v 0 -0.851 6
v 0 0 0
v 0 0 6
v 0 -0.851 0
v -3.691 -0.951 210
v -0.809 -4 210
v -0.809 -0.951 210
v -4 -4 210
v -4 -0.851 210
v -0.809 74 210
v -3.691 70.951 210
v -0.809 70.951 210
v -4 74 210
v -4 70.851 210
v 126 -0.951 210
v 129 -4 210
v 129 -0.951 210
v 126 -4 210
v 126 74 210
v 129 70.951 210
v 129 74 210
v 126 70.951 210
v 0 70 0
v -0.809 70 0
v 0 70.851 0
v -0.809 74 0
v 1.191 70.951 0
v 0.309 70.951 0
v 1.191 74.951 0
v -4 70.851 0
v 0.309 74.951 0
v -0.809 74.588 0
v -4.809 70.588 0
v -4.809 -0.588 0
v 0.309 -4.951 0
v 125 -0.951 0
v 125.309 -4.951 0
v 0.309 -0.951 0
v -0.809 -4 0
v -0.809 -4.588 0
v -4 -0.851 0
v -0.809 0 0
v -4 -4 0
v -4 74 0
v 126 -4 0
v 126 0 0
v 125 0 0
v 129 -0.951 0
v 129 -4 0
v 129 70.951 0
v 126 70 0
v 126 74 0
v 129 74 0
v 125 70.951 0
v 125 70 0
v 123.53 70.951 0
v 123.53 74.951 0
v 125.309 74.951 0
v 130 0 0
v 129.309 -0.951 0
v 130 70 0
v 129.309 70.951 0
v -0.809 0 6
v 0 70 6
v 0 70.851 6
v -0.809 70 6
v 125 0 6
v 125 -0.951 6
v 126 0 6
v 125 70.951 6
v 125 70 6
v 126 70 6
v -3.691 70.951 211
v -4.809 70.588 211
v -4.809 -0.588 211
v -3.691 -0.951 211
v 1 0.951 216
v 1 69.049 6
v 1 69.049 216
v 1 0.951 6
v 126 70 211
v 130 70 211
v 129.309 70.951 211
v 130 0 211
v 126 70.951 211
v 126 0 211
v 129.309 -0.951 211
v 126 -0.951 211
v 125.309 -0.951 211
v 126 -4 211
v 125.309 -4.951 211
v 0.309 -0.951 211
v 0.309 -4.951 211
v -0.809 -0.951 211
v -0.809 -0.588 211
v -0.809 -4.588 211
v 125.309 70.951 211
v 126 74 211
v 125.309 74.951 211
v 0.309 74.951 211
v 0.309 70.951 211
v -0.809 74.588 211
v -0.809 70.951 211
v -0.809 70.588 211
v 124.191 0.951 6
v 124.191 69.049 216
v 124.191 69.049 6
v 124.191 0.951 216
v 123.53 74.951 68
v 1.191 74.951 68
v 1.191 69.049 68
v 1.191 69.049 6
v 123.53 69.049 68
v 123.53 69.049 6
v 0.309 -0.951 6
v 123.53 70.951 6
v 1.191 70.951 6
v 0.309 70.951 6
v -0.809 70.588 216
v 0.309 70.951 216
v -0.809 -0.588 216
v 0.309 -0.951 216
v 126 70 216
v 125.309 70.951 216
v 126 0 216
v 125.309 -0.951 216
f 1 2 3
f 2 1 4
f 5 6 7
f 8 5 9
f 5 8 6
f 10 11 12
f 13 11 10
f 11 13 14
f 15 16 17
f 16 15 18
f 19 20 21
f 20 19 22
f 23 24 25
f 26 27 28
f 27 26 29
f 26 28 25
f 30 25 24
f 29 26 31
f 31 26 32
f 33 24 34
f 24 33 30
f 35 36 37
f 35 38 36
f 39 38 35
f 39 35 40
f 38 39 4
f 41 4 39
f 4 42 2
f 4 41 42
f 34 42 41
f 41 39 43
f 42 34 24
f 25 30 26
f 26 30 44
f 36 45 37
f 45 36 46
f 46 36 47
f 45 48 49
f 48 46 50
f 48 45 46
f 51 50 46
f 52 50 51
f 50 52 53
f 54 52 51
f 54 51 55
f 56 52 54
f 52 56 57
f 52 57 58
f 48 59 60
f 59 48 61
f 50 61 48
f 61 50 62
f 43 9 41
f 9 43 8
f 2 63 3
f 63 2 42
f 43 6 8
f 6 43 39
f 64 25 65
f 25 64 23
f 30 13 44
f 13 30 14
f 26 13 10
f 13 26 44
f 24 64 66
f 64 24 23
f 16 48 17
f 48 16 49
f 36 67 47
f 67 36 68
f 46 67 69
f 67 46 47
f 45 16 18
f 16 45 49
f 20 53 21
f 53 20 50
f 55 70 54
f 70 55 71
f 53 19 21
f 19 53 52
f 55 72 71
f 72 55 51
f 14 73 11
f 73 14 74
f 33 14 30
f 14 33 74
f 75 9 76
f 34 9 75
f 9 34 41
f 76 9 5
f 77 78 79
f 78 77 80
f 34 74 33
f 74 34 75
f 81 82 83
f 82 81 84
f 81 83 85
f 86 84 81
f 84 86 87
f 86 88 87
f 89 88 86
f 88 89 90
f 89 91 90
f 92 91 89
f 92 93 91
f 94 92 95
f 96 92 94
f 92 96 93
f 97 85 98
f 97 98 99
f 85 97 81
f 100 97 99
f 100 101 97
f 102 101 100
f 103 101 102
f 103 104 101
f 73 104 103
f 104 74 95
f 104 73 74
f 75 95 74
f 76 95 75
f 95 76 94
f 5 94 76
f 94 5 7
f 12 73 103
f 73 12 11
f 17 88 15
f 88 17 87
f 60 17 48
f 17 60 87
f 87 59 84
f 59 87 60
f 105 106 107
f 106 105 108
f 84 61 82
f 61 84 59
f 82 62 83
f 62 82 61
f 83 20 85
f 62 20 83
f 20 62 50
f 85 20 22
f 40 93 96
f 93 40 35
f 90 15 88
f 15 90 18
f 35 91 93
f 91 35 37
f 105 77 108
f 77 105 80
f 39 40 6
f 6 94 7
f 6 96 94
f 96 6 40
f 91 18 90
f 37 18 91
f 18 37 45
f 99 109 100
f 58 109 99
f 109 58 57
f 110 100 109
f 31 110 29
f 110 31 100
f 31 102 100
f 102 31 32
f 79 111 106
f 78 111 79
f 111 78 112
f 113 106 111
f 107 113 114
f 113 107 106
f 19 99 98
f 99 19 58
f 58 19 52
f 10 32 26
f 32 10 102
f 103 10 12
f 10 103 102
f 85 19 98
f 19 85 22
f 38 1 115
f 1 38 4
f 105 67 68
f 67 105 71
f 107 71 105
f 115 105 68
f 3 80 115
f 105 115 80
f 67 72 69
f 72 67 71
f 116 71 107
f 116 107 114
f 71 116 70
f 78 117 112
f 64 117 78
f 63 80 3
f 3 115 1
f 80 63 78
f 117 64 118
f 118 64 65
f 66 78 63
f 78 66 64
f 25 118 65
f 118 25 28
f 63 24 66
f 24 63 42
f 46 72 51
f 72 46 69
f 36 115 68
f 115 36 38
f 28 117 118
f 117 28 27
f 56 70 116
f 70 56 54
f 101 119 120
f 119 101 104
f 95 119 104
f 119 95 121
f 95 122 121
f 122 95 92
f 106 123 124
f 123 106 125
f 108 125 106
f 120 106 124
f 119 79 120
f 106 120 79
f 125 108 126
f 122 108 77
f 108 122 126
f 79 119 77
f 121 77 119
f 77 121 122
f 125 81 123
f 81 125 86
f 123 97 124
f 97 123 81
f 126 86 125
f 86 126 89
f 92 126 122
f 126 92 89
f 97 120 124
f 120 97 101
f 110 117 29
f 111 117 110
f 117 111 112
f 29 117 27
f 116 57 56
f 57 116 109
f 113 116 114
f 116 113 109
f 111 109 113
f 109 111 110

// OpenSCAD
// file: can.scad
//Can dimensions
radius = 66.14/2;
top_radius = 53.67/2;
top_rise = 14.57;
bottom_radius = 50/2;
bottom_rise = 7.4;
height = 122.54;

module can(height, radius, top_rise, top_radius, bottom_rise, bottom_radius){
    //Getting measurements correct
    adjusted_height = height - top_rise - bottom_rise;
    adjusted_top_height = adjusted_height + bottom_rise;
    
    //Making the can
    //Top
    translate([0, 0, adjusted_top_height]){
        cylinder(bottom_rise, radius, top_radius);
    }
    //Main body
    translate([0, 0, bottom_rise]){
	    cylinder(adjusted_height, radius, radius);
    }
    //Bottom of can
    cylinder(bottom_rise, bottom_radius, radius);
}
can(height, radius, top_rise, top_radius, bottom_rise, bottom_radius);
// main file
use <can.scad>
use <dispenser_hopper.scad>
//Can settings
can_radius = 66.2/2;
can_top_radius = 53.67/2;
can_top_rise = 14.57;
can_bottom_radius = 50/2;
can_bottom_rise = 7.4;
can_height = 123.53;

//General settings
dispenser_length = 70;
dispenser_width = can_height + 5;
wall_thickness = 4;
lip_wall_thickness = 2;
tall_wall_x = 125;
tall_wall_y = dispenser_length;
tall_wall_z = dispenser_length * 3;
lip_x = tall_wall_x;
lip_y = tall_wall_y;
lip_z = 5;
lip_z_offset = tall_wall_z;
opening_z = 67;
offset_z = tall_wall_z;

hopper_with_opening(can_height, dispenser_width, dispenser_length, wall_thickness, lip_wall_thickness, tall_wall_x, tall_wall_y, tall_wall_z, lip_x, lip_y, lip_z, offset_z, opening_z);
/*
translate([5, 35, 10]){
    rotate([0, 90, 0]){
        can(can_height, can_radius, can_top_rise, can_top_radius, can_bottom_rise, can_bottom_radius);
    }
}*/
